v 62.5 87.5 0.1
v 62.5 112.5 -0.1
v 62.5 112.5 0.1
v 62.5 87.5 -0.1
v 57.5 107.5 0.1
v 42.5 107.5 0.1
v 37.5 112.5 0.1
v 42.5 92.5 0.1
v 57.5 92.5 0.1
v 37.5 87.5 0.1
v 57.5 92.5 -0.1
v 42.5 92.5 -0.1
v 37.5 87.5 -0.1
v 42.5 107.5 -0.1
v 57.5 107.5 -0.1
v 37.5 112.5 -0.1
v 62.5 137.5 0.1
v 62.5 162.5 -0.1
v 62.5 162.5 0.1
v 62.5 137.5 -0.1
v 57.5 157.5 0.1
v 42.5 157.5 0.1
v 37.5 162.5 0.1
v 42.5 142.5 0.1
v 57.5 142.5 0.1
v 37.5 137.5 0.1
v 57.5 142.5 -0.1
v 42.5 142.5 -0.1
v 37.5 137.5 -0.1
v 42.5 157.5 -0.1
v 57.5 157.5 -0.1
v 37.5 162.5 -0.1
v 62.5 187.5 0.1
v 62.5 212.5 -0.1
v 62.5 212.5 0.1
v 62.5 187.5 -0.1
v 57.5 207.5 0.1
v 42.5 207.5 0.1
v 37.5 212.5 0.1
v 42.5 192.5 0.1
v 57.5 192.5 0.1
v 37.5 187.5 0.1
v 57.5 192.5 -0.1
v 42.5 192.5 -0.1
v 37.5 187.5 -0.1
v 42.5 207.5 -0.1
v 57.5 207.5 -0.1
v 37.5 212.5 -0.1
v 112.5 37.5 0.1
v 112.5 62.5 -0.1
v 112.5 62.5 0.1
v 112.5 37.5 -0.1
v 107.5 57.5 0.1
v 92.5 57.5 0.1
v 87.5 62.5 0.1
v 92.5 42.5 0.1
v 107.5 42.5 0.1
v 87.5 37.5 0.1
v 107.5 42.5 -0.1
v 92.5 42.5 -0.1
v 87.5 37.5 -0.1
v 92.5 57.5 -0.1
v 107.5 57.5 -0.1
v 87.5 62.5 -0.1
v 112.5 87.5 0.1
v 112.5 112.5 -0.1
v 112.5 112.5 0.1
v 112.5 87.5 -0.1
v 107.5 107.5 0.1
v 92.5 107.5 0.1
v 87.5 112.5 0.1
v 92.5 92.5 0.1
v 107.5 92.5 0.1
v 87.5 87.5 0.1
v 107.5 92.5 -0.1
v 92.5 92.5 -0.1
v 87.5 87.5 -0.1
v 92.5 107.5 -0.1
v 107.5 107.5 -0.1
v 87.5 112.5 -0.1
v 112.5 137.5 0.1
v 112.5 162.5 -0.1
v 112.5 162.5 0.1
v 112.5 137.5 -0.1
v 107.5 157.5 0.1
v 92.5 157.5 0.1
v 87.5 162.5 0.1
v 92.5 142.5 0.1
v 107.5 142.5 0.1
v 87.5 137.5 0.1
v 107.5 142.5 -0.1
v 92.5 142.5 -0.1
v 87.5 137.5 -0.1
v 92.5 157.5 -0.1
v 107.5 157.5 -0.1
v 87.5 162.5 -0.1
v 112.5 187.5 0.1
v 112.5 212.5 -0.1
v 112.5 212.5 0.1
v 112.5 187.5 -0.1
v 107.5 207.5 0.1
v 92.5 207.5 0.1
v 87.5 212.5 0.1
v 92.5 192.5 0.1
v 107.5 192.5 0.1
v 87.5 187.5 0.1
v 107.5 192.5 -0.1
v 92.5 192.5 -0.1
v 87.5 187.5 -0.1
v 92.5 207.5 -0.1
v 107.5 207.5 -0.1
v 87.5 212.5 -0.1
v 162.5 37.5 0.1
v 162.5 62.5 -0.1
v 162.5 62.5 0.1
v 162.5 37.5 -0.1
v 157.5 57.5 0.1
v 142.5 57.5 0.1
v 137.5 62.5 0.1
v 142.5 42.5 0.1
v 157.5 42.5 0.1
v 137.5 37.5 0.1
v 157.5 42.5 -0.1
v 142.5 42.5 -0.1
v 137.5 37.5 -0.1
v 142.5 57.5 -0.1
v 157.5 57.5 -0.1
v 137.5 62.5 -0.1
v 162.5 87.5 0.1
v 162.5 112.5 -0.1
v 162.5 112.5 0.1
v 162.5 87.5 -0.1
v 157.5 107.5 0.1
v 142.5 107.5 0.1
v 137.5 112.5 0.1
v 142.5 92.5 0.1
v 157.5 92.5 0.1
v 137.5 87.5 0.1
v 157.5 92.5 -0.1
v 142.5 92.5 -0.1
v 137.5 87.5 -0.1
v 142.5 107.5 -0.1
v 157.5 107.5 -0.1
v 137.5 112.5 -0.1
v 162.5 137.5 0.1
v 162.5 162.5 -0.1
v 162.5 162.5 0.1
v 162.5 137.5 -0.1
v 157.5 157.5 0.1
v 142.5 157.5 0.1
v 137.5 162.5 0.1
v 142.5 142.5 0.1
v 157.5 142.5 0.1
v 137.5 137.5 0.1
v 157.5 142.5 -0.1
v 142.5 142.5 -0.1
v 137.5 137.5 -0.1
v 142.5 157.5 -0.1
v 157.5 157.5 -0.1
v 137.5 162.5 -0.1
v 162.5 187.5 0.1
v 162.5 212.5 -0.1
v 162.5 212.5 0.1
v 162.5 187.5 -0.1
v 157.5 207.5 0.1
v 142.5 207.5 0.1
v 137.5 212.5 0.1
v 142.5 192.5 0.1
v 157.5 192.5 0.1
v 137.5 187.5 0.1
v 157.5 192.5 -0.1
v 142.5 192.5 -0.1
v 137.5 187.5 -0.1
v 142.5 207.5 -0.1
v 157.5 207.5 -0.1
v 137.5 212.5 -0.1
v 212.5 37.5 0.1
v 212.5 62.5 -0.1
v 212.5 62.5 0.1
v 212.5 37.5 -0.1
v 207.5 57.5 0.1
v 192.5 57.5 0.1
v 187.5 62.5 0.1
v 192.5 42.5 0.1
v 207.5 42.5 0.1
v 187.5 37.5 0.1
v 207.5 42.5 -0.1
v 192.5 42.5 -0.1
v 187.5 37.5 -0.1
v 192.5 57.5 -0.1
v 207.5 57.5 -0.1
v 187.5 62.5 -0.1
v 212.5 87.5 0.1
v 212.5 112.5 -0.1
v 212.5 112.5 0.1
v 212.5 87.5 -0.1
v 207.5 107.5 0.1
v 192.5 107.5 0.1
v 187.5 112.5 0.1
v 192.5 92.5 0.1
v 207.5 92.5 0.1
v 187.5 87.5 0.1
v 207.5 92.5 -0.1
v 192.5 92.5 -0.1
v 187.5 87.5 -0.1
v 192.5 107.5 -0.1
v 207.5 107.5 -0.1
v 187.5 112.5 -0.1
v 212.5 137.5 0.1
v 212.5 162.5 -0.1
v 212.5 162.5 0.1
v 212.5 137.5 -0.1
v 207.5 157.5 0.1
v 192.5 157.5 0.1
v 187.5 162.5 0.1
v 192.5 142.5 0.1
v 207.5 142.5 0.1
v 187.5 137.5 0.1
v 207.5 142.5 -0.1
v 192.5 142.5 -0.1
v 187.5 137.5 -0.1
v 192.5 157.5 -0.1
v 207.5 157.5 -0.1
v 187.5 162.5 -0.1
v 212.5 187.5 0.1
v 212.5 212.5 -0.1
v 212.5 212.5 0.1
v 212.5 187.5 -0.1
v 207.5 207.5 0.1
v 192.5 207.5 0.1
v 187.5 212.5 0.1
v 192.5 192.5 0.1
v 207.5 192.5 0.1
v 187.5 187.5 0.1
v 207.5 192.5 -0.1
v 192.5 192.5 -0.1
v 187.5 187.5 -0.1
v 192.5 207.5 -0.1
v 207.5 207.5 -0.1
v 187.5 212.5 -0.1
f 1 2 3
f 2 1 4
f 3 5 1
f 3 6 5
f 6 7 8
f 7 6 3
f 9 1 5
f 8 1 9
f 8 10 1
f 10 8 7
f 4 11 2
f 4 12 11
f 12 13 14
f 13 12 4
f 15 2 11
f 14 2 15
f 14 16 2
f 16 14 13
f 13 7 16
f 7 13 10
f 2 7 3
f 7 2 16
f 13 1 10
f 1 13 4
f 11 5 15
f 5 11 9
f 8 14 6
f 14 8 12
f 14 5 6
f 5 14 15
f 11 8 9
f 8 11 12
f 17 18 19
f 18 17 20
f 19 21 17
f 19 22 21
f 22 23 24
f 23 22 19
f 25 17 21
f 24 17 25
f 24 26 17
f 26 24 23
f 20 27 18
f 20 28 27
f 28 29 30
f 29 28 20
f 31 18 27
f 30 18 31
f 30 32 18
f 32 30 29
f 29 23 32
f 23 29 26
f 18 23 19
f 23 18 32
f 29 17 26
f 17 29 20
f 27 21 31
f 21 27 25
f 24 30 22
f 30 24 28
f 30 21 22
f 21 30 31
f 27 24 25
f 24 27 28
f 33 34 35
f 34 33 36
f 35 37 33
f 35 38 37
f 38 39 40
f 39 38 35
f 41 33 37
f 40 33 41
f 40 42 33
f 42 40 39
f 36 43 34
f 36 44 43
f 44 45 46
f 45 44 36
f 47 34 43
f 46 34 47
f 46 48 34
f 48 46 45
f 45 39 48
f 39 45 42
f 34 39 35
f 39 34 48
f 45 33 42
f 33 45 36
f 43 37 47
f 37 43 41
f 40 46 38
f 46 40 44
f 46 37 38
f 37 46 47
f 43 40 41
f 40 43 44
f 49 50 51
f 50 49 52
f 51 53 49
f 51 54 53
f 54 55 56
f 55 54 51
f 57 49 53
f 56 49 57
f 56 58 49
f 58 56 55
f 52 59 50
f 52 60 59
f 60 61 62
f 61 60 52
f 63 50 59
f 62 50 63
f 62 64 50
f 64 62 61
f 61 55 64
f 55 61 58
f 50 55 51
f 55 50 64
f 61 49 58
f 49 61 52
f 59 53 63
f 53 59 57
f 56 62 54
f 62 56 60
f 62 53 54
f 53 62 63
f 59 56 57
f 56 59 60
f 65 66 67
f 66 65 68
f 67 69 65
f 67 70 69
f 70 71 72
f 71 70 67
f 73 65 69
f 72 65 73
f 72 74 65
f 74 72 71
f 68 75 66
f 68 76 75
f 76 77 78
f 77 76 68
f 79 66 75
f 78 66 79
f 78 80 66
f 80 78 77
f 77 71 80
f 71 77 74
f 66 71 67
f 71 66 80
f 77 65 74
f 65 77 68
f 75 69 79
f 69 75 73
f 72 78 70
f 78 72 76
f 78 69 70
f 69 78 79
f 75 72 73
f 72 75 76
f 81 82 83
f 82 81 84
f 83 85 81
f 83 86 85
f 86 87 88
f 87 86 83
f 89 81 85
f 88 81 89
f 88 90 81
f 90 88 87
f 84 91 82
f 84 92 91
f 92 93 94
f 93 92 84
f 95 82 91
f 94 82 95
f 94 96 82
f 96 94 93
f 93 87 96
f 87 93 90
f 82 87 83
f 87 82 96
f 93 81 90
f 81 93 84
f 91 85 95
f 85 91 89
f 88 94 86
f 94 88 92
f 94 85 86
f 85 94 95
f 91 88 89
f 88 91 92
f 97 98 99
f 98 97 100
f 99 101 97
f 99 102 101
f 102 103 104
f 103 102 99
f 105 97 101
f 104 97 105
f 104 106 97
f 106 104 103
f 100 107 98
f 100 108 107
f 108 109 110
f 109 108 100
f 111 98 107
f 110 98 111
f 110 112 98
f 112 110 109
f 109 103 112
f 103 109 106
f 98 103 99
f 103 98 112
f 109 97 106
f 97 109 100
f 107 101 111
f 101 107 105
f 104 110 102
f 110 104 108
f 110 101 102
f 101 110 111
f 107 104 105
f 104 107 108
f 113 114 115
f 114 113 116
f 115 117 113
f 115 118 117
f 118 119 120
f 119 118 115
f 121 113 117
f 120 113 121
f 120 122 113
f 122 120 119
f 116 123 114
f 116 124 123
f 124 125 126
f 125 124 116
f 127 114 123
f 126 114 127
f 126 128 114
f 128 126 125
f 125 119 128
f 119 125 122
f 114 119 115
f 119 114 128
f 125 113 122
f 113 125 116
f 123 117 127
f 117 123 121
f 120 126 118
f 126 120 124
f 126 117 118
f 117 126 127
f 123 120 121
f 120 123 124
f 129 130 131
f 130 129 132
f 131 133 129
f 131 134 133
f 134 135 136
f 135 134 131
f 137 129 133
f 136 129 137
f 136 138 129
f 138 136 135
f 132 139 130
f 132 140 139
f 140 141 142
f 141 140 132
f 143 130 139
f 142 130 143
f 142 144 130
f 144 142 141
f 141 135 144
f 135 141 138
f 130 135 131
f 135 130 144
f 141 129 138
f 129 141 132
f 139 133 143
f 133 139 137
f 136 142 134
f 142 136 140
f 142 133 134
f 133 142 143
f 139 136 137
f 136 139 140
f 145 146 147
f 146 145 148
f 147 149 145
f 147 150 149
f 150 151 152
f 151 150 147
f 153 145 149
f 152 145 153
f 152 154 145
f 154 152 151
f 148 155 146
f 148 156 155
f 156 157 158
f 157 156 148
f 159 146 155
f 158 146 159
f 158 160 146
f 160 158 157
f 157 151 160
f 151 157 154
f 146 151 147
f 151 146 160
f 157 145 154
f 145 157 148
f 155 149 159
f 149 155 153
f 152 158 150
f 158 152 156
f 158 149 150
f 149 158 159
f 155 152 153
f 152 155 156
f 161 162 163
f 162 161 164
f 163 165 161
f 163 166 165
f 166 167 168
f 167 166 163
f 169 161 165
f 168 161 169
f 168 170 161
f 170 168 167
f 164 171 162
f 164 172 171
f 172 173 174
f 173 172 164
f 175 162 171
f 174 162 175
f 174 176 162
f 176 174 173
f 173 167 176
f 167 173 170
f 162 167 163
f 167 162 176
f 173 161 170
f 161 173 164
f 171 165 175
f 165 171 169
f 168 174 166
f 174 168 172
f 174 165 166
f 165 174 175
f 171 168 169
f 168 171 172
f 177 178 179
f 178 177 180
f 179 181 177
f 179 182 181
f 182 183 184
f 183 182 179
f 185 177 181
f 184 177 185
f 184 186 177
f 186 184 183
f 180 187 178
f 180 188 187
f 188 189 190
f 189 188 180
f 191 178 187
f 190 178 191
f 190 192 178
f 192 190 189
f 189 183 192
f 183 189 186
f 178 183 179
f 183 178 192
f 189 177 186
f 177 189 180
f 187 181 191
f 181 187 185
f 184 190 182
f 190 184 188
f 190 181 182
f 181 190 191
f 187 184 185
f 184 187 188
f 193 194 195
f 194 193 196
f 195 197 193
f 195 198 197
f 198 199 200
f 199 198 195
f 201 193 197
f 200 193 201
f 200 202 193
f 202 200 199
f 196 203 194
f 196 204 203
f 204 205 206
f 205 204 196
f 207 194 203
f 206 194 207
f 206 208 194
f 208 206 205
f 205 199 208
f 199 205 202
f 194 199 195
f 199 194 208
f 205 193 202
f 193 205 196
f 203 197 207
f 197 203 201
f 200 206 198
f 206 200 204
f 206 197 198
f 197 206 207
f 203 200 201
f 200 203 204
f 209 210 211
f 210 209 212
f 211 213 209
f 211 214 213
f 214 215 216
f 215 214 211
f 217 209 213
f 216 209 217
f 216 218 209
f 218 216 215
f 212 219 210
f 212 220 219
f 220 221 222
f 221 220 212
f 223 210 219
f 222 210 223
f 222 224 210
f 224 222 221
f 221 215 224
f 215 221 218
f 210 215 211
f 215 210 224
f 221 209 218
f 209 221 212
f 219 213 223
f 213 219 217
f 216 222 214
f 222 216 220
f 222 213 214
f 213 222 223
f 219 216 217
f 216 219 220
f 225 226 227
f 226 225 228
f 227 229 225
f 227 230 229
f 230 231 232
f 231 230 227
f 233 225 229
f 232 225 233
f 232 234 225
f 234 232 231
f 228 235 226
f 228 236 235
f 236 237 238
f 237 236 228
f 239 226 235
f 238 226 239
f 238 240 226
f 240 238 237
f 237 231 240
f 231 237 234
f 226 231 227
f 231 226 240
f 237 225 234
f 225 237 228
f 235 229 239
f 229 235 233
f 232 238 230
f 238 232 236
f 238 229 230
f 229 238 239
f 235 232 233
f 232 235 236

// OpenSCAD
// bed level

HEIGHT = .2;

BED_SIZE = 200;

START = 10;
STEP = 20;
END = BED_SIZE / 2;


module outline(size=10) {

  difference() {
    cube([size, size, HEIGHT], center=true);
    cube([size - HEIGHT, size - HEIGHT, HEIGHT + 0.01], center=true);
  }
  
}

AA = BED_SIZE / 4;
BB = BED_SIZE - AA;

*for(o = [ [ AA, BB], [BB, AA], [BB, BB] ] ) {
  translate( [o[0], o[1], 0])
  cube([30, 30, HEIGHT], center=true);
}

for(x = [ AA, AA * 2, AA * 3, AA * 4 ], y = [ AA, AA * 2, AA * 3, AA * 4 ] ) {
  if(x > AA || y > AA)
  translate( [x, y, 0])
  difference() {
    cube([25, 25, HEIGHT], center=true);
    cube([15, 15, HEIGHT + 0.01], center=true);
  }
}


*for(x = [ AA, BB ], y = [ AA, BB ] ) {
  translate( [x, y, 0])
  for (a =[START:STEP:END]) outline(a);
}
